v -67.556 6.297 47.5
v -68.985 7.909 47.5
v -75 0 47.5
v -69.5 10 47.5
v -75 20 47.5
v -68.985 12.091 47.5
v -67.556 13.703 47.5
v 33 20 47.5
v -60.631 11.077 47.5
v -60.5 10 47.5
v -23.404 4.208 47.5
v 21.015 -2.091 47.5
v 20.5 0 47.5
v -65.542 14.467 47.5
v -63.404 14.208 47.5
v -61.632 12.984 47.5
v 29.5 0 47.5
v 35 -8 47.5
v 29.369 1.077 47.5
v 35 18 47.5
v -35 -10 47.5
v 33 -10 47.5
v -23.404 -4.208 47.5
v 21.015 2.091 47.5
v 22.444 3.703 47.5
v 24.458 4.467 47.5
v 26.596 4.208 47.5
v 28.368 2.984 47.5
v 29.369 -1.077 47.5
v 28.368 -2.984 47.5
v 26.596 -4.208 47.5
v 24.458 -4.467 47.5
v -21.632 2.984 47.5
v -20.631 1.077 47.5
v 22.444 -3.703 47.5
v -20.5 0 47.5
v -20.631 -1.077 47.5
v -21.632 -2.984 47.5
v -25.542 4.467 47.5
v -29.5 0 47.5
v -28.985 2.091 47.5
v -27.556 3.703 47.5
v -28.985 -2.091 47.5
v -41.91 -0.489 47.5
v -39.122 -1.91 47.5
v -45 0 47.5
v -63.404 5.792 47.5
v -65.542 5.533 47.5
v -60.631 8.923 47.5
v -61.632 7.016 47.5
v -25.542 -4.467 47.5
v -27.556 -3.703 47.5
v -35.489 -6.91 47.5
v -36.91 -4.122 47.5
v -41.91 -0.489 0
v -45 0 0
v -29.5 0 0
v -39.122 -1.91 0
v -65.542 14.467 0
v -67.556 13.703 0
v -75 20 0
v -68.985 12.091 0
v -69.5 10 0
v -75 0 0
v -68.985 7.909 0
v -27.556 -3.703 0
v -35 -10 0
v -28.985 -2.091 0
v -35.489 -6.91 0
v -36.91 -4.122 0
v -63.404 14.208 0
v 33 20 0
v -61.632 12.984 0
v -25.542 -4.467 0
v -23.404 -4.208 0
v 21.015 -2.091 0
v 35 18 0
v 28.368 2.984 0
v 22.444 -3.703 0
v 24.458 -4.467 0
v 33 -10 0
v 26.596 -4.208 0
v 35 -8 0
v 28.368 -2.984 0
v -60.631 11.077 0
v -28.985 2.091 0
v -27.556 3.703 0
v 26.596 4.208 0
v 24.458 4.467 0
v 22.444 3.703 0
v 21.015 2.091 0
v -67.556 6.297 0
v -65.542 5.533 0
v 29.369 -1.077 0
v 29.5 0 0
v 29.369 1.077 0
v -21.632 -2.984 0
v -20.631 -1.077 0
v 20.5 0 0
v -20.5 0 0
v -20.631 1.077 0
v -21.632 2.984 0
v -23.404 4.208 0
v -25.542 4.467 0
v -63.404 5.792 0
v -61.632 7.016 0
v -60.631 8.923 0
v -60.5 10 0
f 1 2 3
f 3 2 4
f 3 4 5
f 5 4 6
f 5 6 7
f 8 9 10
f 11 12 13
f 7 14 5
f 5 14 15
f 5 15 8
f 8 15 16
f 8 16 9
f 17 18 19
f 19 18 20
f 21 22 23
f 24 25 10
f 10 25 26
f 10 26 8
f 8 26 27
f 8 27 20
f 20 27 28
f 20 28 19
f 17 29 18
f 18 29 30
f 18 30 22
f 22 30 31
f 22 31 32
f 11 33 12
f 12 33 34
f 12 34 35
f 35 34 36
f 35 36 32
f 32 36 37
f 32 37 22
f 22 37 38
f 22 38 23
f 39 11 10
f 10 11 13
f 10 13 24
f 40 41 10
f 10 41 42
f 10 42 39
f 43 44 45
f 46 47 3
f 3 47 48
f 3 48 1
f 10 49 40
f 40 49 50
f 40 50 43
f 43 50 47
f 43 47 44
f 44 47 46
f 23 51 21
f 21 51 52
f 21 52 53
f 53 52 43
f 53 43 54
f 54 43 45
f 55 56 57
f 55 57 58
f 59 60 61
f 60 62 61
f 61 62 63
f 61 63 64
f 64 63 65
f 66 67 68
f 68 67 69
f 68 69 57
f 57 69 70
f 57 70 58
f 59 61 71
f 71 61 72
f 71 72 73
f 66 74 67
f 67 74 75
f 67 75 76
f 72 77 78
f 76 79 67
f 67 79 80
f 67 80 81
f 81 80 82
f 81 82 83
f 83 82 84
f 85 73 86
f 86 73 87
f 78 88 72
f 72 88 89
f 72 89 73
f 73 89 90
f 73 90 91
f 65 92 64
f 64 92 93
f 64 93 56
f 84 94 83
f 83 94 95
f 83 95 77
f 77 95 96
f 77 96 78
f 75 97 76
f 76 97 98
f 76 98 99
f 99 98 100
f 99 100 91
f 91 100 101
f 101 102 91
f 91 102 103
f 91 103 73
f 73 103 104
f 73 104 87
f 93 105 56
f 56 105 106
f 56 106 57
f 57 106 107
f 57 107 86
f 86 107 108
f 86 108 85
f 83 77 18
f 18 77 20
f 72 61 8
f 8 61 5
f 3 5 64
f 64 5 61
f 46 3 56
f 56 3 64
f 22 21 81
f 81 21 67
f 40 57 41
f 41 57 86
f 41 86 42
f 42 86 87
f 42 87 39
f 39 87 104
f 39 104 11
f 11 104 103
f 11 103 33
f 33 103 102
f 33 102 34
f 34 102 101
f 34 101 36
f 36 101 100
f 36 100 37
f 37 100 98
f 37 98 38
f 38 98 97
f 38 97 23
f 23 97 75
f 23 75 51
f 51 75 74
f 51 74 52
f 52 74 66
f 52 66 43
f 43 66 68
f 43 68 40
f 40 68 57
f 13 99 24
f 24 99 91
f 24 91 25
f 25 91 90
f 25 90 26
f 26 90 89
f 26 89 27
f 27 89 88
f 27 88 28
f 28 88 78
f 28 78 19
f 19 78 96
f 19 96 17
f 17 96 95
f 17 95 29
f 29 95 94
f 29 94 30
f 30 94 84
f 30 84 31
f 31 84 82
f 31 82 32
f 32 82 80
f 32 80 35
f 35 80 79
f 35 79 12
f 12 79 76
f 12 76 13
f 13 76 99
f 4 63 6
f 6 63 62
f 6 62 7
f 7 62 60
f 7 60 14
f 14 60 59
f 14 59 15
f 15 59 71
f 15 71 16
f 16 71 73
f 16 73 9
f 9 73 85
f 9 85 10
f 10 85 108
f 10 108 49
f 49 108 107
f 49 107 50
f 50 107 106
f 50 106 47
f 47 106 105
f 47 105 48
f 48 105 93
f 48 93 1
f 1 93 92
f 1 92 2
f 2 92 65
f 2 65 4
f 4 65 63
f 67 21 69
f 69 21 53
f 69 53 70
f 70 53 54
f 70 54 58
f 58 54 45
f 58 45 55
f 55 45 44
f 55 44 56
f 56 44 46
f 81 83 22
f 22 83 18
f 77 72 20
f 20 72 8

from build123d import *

# Parameters (mm, degrees)
SKETCH_1_R      = 4.5
EXTRUDE_1_DEPTH = 47.5
FILLET_1_R      = 10
CHAMFER_1_SIZE  = 2


with BuildPart() as part:
    # 草图1 → 凸台-拉伸1 (new body)
    with BuildSketch(Plane.XY):
        Polygon((-35, 0), (-35, -10), (35, -10), (35, 10), (35, 20), (-35, 20), (-65, 20), (-75, 20), (-75, 0), align=None)
        with Locations((-25, 0)):
            Circle(SKETCH_1_R, mode=Mode.SUBTRACT)
        with Locations((25, 0)):
            Circle(SKETCH_1_R, mode=Mode.SUBTRACT)
        with Locations((-65, 10)):
            Circle(SKETCH_1_R, mode=Mode.SUBTRACT)
    extrude(amount=EXTRUDE_1_DEPTH)

    # 圆角1
    fillet_1_edges = [part.edges().sort_by_distance(p)[0] for p in [
        (-35, 0, 23.75),
    ]]
    fillet(fillet_1_edges, radius=FILLET_1_R - 0.0001)  # a hair under: the kernel refuses the full size

    # 倒角1
    chamfer_1_edges = [part.edges().sort_by_distance(p)[0] for p in [
        (35, -10, 23.75),
        (35, 20, 23.75),
    ]]
    chamfer(chamfer_1_edges, length=CHAMFER_1_SIZE)


solid = part.part
